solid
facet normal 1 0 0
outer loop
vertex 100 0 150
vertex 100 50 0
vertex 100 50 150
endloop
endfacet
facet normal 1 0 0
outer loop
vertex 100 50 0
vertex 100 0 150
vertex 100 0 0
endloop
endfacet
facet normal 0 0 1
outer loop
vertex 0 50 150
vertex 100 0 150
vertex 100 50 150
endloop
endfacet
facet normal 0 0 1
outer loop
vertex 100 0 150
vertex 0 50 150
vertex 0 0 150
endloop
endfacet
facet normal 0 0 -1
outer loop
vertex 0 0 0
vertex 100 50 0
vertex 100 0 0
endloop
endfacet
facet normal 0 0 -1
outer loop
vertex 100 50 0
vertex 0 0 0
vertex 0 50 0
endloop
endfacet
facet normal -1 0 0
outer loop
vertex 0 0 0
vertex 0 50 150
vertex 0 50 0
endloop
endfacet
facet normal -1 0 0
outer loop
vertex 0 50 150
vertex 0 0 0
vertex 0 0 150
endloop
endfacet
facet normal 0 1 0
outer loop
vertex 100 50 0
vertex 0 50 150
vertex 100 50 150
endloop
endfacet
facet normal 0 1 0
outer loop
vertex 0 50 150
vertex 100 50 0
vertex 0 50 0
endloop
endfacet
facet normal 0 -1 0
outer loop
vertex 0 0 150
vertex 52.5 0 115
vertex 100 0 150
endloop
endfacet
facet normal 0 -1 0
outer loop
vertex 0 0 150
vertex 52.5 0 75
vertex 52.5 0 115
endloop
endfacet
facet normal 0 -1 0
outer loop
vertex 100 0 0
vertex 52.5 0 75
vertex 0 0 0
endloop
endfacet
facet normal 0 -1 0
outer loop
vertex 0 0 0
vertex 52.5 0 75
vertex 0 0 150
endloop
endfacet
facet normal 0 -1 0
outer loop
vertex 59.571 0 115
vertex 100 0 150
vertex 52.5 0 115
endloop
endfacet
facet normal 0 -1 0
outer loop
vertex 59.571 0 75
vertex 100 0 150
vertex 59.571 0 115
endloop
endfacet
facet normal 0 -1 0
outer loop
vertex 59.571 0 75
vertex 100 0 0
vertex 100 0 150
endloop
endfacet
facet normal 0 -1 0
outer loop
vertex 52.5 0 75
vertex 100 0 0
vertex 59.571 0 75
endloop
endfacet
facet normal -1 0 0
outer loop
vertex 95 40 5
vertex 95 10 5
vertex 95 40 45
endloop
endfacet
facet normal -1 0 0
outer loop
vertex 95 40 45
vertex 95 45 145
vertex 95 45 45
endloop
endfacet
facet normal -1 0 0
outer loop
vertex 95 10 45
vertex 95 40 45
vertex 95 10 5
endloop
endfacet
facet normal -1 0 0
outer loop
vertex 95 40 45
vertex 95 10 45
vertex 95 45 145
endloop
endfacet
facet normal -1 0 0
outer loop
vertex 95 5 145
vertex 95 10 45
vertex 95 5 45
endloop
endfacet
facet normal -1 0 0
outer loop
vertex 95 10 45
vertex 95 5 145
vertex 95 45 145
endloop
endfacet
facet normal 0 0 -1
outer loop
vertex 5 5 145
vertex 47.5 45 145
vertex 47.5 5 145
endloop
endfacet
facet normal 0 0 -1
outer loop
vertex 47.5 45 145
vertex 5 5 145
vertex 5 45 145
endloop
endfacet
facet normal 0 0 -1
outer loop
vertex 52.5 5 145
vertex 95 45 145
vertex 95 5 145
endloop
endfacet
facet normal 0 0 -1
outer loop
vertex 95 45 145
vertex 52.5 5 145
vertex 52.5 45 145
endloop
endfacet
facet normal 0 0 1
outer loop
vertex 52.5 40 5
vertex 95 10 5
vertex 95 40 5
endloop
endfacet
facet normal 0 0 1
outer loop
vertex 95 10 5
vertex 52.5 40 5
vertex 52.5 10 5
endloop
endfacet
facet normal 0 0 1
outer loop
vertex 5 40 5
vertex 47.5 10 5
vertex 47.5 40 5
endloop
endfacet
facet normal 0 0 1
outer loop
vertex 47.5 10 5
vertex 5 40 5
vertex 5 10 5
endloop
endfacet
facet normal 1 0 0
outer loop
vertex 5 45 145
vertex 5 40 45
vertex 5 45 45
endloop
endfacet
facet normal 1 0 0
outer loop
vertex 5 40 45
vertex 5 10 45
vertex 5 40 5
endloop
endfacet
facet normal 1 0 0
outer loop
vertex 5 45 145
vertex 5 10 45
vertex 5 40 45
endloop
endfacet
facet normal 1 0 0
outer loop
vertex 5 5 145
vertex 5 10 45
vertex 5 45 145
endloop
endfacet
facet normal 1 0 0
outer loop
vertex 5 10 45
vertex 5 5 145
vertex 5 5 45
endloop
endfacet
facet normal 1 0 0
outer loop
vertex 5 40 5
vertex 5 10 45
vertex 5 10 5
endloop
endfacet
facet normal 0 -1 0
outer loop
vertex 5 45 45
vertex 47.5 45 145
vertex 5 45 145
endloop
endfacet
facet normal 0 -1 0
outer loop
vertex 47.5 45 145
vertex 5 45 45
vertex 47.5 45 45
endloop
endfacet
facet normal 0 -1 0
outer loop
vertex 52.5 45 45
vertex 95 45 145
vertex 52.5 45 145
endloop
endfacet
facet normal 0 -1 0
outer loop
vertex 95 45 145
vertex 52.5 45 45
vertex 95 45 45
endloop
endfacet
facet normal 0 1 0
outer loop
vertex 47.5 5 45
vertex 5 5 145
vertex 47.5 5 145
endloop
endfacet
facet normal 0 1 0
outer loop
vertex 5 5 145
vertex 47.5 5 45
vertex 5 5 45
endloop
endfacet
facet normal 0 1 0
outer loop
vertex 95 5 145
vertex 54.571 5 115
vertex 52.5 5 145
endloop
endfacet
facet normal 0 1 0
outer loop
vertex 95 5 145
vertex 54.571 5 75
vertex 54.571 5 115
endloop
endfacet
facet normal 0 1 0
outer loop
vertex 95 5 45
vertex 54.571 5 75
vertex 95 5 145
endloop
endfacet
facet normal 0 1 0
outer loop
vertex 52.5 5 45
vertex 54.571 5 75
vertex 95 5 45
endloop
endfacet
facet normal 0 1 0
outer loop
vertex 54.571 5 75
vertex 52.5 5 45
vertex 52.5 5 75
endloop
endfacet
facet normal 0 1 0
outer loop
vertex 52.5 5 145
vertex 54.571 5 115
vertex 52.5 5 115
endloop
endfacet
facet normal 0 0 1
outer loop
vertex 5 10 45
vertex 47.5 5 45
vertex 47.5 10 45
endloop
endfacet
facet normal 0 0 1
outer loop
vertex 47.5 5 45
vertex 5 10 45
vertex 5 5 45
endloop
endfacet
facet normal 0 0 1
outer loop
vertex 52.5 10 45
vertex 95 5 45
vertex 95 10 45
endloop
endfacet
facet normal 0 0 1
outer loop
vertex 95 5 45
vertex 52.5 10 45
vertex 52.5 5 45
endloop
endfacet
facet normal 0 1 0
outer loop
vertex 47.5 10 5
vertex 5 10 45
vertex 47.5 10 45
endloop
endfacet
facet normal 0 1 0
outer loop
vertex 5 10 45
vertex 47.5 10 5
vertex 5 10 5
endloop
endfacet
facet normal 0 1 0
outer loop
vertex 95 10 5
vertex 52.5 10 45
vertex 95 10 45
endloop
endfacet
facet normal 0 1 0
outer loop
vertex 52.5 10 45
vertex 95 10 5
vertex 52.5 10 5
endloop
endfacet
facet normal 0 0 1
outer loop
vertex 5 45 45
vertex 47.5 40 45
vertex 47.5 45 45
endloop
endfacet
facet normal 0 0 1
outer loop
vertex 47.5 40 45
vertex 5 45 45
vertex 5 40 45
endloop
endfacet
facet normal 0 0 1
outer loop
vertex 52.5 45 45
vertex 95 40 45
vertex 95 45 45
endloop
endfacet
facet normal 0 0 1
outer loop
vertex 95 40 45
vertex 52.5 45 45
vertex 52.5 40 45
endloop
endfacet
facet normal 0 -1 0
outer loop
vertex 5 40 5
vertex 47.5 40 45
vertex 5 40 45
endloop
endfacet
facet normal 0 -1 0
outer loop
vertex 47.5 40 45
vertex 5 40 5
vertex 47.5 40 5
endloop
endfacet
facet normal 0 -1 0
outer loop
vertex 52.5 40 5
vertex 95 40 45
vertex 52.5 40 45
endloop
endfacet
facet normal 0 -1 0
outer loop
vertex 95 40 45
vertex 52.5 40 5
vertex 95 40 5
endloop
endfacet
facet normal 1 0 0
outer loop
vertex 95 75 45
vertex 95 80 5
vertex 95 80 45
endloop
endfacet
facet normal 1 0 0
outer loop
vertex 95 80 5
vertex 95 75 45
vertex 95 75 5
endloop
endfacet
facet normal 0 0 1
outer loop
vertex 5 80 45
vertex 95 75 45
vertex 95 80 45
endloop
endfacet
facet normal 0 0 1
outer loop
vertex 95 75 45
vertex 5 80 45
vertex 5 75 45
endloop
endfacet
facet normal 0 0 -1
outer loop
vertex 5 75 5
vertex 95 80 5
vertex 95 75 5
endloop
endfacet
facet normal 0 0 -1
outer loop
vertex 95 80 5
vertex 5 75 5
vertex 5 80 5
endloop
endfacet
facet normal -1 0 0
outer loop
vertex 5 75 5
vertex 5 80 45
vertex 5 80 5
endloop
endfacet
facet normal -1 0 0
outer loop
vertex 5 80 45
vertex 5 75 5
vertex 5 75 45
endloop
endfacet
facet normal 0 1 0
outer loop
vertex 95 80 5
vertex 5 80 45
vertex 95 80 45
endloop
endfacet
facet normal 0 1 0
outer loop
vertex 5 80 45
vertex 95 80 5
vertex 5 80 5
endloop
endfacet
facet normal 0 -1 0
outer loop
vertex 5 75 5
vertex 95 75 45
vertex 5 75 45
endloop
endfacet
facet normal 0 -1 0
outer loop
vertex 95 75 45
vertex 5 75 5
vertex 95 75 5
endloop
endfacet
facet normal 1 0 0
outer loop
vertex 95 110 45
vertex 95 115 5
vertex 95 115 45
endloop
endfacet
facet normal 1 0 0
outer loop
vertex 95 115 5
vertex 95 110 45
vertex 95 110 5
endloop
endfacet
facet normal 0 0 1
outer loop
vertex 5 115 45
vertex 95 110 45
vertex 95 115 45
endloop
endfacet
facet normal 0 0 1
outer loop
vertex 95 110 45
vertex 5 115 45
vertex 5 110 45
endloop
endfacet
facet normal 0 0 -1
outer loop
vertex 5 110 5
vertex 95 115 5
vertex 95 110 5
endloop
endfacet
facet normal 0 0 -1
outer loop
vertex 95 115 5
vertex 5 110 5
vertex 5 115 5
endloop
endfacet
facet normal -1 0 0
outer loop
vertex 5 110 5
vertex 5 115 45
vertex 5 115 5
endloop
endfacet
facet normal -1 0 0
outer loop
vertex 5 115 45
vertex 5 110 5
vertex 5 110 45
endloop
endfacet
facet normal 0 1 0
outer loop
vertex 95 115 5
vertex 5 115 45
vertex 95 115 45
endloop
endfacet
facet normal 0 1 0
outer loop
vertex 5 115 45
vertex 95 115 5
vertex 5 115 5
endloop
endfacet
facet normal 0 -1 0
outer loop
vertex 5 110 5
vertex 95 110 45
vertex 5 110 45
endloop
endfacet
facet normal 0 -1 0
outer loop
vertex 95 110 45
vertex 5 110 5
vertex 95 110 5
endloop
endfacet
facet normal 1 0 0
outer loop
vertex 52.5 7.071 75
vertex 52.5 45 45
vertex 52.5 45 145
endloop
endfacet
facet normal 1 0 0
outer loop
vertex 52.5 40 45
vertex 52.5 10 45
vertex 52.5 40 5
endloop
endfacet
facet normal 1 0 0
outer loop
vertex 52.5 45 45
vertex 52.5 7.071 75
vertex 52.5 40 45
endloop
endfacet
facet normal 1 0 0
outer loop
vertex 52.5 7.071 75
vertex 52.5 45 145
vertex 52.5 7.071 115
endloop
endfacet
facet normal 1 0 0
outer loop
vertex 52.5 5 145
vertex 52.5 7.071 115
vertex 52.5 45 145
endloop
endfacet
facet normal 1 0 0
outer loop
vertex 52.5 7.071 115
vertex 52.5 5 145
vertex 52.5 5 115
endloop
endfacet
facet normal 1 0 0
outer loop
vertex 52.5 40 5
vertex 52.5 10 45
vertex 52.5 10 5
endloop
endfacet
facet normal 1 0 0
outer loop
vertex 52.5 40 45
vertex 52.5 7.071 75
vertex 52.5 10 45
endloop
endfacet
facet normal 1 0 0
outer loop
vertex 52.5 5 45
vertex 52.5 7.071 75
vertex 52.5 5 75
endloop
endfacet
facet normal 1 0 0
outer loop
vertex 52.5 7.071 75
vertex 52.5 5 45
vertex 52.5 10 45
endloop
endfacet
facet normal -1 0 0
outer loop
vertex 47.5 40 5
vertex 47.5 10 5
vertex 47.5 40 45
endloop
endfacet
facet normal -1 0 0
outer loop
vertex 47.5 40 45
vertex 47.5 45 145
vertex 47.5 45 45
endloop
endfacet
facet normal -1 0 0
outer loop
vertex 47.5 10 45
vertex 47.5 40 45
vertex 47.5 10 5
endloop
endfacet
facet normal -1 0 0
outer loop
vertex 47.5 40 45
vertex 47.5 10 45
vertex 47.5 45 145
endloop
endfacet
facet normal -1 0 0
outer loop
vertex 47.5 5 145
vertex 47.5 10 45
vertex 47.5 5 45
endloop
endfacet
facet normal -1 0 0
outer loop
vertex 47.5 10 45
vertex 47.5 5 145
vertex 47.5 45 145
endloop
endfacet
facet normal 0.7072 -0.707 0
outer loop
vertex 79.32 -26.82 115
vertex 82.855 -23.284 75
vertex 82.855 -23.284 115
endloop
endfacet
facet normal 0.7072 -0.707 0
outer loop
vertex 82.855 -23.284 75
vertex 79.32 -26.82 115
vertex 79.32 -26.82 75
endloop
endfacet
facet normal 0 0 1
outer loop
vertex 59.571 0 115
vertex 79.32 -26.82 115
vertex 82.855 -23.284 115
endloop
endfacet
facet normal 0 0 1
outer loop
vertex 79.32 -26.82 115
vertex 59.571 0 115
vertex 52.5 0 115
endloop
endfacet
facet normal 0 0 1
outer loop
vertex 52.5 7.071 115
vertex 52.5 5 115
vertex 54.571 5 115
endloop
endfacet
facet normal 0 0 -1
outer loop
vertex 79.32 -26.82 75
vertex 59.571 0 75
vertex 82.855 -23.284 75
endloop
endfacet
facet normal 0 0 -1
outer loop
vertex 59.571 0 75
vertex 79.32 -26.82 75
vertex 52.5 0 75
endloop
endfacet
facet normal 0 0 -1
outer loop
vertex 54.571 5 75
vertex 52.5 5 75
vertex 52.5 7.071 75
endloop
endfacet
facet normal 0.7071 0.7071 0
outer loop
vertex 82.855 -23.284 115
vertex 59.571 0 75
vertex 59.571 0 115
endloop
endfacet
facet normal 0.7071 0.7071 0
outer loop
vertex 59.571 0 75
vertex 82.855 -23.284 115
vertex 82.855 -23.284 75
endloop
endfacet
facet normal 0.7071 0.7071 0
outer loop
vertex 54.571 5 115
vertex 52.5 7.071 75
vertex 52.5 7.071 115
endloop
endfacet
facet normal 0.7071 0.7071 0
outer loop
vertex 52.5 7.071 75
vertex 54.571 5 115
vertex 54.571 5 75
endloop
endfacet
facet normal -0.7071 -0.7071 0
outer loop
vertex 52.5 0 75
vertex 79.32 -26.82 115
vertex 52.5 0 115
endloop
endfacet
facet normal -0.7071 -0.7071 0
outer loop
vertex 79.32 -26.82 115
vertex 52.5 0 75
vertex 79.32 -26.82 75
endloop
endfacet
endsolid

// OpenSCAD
// Dimensions
outer_frame_width = 100;
outer_frame_height = 150;
outer_frame_depth = 50;
outer_frame_thickness = 5;

shelf_thickness = 5;
shelf_spacing = 30;

vertical_divider_thickness = 5;

angled_support_thickness = 5;
angled_support_angle = 45; // degrees

// Outer Frame
module outer_frame() {
    difference() {
        // Simplified rectangular hollow structure
        cube([outer_frame_width, outer_frame_depth, outer_frame_height]);
        translate([outer_frame_thickness, outer_frame_thickness, outer_frame_thickness])
            cube([outer_frame_width - 2 * outer_frame_thickness, 
                  outer_frame_depth - 2 * outer_frame_thickness, 
                  outer_frame_height - 2 * outer_frame_thickness]);
    }
}

// Horizontal Shelf
module horizontal_shelf(y_position) {
    translate([outer_frame_thickness, y_position, outer_frame_thickness])
        cube([outer_frame_width - 2 * outer_frame_thickness, shelf_thickness, outer_frame_depth - 2 * outer_frame_thickness]);
}

// Vertical Divider
module vertical_divider() {
    translate([(outer_frame_width - vertical_divider_thickness) / 2, outer_frame_thickness, outer_frame_thickness])
        cube([vertical_divider_thickness, outer_frame_depth - 2 * outer_frame_thickness, outer_frame_height - 2 * outer_frame_thickness]);
}

// Angled Support Panel
module angled_support_panel() {
    translate([(outer_frame_width - vertical_divider_thickness) / 2, outer_frame_thickness, outer_frame_height / 2])
        rotate([0, 0, -angled_support_angle])
            cube([outer_frame_width / 2 - outer_frame_thickness, angled_support_thickness, outer_frame_depth - 2 * outer_frame_thickness]);
}

// Assemble the model
module model() {
    // Layer 1: Outer Frame
    outer_frame();

    // Layer 2-5: Horizontal Shelves (4 evenly spaced shelves)
    for (i = [0:3]) {
        horizontal_shelf(outer_frame_thickness + i * (shelf_spacing + shelf_thickness));
    }

    // Layer 6: Vertical Divider
    vertical_divider();

    // Layer 7: Angled Support Panel
    angled_support_panel();
}

// Render the model
model();
